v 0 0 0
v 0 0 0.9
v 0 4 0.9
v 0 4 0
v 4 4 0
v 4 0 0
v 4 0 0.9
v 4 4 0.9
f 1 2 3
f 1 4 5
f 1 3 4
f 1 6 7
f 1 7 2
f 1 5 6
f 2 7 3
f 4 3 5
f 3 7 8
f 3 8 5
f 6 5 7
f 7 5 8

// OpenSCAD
/* Warning, this is a very basic generator with a lot of approximation 
input data : [VQFN, NXA, 4x4x0.9mm, 16, , A, C04-01112A]
generated by com.zoubworld.electronics.cad.model3d.Basic
Date : Sun Feb 15 10:50:49 CET 2026
*/

//body
color("black")
translate([0,0,0])
cube([4.0,4.0,0.9], center=false);
